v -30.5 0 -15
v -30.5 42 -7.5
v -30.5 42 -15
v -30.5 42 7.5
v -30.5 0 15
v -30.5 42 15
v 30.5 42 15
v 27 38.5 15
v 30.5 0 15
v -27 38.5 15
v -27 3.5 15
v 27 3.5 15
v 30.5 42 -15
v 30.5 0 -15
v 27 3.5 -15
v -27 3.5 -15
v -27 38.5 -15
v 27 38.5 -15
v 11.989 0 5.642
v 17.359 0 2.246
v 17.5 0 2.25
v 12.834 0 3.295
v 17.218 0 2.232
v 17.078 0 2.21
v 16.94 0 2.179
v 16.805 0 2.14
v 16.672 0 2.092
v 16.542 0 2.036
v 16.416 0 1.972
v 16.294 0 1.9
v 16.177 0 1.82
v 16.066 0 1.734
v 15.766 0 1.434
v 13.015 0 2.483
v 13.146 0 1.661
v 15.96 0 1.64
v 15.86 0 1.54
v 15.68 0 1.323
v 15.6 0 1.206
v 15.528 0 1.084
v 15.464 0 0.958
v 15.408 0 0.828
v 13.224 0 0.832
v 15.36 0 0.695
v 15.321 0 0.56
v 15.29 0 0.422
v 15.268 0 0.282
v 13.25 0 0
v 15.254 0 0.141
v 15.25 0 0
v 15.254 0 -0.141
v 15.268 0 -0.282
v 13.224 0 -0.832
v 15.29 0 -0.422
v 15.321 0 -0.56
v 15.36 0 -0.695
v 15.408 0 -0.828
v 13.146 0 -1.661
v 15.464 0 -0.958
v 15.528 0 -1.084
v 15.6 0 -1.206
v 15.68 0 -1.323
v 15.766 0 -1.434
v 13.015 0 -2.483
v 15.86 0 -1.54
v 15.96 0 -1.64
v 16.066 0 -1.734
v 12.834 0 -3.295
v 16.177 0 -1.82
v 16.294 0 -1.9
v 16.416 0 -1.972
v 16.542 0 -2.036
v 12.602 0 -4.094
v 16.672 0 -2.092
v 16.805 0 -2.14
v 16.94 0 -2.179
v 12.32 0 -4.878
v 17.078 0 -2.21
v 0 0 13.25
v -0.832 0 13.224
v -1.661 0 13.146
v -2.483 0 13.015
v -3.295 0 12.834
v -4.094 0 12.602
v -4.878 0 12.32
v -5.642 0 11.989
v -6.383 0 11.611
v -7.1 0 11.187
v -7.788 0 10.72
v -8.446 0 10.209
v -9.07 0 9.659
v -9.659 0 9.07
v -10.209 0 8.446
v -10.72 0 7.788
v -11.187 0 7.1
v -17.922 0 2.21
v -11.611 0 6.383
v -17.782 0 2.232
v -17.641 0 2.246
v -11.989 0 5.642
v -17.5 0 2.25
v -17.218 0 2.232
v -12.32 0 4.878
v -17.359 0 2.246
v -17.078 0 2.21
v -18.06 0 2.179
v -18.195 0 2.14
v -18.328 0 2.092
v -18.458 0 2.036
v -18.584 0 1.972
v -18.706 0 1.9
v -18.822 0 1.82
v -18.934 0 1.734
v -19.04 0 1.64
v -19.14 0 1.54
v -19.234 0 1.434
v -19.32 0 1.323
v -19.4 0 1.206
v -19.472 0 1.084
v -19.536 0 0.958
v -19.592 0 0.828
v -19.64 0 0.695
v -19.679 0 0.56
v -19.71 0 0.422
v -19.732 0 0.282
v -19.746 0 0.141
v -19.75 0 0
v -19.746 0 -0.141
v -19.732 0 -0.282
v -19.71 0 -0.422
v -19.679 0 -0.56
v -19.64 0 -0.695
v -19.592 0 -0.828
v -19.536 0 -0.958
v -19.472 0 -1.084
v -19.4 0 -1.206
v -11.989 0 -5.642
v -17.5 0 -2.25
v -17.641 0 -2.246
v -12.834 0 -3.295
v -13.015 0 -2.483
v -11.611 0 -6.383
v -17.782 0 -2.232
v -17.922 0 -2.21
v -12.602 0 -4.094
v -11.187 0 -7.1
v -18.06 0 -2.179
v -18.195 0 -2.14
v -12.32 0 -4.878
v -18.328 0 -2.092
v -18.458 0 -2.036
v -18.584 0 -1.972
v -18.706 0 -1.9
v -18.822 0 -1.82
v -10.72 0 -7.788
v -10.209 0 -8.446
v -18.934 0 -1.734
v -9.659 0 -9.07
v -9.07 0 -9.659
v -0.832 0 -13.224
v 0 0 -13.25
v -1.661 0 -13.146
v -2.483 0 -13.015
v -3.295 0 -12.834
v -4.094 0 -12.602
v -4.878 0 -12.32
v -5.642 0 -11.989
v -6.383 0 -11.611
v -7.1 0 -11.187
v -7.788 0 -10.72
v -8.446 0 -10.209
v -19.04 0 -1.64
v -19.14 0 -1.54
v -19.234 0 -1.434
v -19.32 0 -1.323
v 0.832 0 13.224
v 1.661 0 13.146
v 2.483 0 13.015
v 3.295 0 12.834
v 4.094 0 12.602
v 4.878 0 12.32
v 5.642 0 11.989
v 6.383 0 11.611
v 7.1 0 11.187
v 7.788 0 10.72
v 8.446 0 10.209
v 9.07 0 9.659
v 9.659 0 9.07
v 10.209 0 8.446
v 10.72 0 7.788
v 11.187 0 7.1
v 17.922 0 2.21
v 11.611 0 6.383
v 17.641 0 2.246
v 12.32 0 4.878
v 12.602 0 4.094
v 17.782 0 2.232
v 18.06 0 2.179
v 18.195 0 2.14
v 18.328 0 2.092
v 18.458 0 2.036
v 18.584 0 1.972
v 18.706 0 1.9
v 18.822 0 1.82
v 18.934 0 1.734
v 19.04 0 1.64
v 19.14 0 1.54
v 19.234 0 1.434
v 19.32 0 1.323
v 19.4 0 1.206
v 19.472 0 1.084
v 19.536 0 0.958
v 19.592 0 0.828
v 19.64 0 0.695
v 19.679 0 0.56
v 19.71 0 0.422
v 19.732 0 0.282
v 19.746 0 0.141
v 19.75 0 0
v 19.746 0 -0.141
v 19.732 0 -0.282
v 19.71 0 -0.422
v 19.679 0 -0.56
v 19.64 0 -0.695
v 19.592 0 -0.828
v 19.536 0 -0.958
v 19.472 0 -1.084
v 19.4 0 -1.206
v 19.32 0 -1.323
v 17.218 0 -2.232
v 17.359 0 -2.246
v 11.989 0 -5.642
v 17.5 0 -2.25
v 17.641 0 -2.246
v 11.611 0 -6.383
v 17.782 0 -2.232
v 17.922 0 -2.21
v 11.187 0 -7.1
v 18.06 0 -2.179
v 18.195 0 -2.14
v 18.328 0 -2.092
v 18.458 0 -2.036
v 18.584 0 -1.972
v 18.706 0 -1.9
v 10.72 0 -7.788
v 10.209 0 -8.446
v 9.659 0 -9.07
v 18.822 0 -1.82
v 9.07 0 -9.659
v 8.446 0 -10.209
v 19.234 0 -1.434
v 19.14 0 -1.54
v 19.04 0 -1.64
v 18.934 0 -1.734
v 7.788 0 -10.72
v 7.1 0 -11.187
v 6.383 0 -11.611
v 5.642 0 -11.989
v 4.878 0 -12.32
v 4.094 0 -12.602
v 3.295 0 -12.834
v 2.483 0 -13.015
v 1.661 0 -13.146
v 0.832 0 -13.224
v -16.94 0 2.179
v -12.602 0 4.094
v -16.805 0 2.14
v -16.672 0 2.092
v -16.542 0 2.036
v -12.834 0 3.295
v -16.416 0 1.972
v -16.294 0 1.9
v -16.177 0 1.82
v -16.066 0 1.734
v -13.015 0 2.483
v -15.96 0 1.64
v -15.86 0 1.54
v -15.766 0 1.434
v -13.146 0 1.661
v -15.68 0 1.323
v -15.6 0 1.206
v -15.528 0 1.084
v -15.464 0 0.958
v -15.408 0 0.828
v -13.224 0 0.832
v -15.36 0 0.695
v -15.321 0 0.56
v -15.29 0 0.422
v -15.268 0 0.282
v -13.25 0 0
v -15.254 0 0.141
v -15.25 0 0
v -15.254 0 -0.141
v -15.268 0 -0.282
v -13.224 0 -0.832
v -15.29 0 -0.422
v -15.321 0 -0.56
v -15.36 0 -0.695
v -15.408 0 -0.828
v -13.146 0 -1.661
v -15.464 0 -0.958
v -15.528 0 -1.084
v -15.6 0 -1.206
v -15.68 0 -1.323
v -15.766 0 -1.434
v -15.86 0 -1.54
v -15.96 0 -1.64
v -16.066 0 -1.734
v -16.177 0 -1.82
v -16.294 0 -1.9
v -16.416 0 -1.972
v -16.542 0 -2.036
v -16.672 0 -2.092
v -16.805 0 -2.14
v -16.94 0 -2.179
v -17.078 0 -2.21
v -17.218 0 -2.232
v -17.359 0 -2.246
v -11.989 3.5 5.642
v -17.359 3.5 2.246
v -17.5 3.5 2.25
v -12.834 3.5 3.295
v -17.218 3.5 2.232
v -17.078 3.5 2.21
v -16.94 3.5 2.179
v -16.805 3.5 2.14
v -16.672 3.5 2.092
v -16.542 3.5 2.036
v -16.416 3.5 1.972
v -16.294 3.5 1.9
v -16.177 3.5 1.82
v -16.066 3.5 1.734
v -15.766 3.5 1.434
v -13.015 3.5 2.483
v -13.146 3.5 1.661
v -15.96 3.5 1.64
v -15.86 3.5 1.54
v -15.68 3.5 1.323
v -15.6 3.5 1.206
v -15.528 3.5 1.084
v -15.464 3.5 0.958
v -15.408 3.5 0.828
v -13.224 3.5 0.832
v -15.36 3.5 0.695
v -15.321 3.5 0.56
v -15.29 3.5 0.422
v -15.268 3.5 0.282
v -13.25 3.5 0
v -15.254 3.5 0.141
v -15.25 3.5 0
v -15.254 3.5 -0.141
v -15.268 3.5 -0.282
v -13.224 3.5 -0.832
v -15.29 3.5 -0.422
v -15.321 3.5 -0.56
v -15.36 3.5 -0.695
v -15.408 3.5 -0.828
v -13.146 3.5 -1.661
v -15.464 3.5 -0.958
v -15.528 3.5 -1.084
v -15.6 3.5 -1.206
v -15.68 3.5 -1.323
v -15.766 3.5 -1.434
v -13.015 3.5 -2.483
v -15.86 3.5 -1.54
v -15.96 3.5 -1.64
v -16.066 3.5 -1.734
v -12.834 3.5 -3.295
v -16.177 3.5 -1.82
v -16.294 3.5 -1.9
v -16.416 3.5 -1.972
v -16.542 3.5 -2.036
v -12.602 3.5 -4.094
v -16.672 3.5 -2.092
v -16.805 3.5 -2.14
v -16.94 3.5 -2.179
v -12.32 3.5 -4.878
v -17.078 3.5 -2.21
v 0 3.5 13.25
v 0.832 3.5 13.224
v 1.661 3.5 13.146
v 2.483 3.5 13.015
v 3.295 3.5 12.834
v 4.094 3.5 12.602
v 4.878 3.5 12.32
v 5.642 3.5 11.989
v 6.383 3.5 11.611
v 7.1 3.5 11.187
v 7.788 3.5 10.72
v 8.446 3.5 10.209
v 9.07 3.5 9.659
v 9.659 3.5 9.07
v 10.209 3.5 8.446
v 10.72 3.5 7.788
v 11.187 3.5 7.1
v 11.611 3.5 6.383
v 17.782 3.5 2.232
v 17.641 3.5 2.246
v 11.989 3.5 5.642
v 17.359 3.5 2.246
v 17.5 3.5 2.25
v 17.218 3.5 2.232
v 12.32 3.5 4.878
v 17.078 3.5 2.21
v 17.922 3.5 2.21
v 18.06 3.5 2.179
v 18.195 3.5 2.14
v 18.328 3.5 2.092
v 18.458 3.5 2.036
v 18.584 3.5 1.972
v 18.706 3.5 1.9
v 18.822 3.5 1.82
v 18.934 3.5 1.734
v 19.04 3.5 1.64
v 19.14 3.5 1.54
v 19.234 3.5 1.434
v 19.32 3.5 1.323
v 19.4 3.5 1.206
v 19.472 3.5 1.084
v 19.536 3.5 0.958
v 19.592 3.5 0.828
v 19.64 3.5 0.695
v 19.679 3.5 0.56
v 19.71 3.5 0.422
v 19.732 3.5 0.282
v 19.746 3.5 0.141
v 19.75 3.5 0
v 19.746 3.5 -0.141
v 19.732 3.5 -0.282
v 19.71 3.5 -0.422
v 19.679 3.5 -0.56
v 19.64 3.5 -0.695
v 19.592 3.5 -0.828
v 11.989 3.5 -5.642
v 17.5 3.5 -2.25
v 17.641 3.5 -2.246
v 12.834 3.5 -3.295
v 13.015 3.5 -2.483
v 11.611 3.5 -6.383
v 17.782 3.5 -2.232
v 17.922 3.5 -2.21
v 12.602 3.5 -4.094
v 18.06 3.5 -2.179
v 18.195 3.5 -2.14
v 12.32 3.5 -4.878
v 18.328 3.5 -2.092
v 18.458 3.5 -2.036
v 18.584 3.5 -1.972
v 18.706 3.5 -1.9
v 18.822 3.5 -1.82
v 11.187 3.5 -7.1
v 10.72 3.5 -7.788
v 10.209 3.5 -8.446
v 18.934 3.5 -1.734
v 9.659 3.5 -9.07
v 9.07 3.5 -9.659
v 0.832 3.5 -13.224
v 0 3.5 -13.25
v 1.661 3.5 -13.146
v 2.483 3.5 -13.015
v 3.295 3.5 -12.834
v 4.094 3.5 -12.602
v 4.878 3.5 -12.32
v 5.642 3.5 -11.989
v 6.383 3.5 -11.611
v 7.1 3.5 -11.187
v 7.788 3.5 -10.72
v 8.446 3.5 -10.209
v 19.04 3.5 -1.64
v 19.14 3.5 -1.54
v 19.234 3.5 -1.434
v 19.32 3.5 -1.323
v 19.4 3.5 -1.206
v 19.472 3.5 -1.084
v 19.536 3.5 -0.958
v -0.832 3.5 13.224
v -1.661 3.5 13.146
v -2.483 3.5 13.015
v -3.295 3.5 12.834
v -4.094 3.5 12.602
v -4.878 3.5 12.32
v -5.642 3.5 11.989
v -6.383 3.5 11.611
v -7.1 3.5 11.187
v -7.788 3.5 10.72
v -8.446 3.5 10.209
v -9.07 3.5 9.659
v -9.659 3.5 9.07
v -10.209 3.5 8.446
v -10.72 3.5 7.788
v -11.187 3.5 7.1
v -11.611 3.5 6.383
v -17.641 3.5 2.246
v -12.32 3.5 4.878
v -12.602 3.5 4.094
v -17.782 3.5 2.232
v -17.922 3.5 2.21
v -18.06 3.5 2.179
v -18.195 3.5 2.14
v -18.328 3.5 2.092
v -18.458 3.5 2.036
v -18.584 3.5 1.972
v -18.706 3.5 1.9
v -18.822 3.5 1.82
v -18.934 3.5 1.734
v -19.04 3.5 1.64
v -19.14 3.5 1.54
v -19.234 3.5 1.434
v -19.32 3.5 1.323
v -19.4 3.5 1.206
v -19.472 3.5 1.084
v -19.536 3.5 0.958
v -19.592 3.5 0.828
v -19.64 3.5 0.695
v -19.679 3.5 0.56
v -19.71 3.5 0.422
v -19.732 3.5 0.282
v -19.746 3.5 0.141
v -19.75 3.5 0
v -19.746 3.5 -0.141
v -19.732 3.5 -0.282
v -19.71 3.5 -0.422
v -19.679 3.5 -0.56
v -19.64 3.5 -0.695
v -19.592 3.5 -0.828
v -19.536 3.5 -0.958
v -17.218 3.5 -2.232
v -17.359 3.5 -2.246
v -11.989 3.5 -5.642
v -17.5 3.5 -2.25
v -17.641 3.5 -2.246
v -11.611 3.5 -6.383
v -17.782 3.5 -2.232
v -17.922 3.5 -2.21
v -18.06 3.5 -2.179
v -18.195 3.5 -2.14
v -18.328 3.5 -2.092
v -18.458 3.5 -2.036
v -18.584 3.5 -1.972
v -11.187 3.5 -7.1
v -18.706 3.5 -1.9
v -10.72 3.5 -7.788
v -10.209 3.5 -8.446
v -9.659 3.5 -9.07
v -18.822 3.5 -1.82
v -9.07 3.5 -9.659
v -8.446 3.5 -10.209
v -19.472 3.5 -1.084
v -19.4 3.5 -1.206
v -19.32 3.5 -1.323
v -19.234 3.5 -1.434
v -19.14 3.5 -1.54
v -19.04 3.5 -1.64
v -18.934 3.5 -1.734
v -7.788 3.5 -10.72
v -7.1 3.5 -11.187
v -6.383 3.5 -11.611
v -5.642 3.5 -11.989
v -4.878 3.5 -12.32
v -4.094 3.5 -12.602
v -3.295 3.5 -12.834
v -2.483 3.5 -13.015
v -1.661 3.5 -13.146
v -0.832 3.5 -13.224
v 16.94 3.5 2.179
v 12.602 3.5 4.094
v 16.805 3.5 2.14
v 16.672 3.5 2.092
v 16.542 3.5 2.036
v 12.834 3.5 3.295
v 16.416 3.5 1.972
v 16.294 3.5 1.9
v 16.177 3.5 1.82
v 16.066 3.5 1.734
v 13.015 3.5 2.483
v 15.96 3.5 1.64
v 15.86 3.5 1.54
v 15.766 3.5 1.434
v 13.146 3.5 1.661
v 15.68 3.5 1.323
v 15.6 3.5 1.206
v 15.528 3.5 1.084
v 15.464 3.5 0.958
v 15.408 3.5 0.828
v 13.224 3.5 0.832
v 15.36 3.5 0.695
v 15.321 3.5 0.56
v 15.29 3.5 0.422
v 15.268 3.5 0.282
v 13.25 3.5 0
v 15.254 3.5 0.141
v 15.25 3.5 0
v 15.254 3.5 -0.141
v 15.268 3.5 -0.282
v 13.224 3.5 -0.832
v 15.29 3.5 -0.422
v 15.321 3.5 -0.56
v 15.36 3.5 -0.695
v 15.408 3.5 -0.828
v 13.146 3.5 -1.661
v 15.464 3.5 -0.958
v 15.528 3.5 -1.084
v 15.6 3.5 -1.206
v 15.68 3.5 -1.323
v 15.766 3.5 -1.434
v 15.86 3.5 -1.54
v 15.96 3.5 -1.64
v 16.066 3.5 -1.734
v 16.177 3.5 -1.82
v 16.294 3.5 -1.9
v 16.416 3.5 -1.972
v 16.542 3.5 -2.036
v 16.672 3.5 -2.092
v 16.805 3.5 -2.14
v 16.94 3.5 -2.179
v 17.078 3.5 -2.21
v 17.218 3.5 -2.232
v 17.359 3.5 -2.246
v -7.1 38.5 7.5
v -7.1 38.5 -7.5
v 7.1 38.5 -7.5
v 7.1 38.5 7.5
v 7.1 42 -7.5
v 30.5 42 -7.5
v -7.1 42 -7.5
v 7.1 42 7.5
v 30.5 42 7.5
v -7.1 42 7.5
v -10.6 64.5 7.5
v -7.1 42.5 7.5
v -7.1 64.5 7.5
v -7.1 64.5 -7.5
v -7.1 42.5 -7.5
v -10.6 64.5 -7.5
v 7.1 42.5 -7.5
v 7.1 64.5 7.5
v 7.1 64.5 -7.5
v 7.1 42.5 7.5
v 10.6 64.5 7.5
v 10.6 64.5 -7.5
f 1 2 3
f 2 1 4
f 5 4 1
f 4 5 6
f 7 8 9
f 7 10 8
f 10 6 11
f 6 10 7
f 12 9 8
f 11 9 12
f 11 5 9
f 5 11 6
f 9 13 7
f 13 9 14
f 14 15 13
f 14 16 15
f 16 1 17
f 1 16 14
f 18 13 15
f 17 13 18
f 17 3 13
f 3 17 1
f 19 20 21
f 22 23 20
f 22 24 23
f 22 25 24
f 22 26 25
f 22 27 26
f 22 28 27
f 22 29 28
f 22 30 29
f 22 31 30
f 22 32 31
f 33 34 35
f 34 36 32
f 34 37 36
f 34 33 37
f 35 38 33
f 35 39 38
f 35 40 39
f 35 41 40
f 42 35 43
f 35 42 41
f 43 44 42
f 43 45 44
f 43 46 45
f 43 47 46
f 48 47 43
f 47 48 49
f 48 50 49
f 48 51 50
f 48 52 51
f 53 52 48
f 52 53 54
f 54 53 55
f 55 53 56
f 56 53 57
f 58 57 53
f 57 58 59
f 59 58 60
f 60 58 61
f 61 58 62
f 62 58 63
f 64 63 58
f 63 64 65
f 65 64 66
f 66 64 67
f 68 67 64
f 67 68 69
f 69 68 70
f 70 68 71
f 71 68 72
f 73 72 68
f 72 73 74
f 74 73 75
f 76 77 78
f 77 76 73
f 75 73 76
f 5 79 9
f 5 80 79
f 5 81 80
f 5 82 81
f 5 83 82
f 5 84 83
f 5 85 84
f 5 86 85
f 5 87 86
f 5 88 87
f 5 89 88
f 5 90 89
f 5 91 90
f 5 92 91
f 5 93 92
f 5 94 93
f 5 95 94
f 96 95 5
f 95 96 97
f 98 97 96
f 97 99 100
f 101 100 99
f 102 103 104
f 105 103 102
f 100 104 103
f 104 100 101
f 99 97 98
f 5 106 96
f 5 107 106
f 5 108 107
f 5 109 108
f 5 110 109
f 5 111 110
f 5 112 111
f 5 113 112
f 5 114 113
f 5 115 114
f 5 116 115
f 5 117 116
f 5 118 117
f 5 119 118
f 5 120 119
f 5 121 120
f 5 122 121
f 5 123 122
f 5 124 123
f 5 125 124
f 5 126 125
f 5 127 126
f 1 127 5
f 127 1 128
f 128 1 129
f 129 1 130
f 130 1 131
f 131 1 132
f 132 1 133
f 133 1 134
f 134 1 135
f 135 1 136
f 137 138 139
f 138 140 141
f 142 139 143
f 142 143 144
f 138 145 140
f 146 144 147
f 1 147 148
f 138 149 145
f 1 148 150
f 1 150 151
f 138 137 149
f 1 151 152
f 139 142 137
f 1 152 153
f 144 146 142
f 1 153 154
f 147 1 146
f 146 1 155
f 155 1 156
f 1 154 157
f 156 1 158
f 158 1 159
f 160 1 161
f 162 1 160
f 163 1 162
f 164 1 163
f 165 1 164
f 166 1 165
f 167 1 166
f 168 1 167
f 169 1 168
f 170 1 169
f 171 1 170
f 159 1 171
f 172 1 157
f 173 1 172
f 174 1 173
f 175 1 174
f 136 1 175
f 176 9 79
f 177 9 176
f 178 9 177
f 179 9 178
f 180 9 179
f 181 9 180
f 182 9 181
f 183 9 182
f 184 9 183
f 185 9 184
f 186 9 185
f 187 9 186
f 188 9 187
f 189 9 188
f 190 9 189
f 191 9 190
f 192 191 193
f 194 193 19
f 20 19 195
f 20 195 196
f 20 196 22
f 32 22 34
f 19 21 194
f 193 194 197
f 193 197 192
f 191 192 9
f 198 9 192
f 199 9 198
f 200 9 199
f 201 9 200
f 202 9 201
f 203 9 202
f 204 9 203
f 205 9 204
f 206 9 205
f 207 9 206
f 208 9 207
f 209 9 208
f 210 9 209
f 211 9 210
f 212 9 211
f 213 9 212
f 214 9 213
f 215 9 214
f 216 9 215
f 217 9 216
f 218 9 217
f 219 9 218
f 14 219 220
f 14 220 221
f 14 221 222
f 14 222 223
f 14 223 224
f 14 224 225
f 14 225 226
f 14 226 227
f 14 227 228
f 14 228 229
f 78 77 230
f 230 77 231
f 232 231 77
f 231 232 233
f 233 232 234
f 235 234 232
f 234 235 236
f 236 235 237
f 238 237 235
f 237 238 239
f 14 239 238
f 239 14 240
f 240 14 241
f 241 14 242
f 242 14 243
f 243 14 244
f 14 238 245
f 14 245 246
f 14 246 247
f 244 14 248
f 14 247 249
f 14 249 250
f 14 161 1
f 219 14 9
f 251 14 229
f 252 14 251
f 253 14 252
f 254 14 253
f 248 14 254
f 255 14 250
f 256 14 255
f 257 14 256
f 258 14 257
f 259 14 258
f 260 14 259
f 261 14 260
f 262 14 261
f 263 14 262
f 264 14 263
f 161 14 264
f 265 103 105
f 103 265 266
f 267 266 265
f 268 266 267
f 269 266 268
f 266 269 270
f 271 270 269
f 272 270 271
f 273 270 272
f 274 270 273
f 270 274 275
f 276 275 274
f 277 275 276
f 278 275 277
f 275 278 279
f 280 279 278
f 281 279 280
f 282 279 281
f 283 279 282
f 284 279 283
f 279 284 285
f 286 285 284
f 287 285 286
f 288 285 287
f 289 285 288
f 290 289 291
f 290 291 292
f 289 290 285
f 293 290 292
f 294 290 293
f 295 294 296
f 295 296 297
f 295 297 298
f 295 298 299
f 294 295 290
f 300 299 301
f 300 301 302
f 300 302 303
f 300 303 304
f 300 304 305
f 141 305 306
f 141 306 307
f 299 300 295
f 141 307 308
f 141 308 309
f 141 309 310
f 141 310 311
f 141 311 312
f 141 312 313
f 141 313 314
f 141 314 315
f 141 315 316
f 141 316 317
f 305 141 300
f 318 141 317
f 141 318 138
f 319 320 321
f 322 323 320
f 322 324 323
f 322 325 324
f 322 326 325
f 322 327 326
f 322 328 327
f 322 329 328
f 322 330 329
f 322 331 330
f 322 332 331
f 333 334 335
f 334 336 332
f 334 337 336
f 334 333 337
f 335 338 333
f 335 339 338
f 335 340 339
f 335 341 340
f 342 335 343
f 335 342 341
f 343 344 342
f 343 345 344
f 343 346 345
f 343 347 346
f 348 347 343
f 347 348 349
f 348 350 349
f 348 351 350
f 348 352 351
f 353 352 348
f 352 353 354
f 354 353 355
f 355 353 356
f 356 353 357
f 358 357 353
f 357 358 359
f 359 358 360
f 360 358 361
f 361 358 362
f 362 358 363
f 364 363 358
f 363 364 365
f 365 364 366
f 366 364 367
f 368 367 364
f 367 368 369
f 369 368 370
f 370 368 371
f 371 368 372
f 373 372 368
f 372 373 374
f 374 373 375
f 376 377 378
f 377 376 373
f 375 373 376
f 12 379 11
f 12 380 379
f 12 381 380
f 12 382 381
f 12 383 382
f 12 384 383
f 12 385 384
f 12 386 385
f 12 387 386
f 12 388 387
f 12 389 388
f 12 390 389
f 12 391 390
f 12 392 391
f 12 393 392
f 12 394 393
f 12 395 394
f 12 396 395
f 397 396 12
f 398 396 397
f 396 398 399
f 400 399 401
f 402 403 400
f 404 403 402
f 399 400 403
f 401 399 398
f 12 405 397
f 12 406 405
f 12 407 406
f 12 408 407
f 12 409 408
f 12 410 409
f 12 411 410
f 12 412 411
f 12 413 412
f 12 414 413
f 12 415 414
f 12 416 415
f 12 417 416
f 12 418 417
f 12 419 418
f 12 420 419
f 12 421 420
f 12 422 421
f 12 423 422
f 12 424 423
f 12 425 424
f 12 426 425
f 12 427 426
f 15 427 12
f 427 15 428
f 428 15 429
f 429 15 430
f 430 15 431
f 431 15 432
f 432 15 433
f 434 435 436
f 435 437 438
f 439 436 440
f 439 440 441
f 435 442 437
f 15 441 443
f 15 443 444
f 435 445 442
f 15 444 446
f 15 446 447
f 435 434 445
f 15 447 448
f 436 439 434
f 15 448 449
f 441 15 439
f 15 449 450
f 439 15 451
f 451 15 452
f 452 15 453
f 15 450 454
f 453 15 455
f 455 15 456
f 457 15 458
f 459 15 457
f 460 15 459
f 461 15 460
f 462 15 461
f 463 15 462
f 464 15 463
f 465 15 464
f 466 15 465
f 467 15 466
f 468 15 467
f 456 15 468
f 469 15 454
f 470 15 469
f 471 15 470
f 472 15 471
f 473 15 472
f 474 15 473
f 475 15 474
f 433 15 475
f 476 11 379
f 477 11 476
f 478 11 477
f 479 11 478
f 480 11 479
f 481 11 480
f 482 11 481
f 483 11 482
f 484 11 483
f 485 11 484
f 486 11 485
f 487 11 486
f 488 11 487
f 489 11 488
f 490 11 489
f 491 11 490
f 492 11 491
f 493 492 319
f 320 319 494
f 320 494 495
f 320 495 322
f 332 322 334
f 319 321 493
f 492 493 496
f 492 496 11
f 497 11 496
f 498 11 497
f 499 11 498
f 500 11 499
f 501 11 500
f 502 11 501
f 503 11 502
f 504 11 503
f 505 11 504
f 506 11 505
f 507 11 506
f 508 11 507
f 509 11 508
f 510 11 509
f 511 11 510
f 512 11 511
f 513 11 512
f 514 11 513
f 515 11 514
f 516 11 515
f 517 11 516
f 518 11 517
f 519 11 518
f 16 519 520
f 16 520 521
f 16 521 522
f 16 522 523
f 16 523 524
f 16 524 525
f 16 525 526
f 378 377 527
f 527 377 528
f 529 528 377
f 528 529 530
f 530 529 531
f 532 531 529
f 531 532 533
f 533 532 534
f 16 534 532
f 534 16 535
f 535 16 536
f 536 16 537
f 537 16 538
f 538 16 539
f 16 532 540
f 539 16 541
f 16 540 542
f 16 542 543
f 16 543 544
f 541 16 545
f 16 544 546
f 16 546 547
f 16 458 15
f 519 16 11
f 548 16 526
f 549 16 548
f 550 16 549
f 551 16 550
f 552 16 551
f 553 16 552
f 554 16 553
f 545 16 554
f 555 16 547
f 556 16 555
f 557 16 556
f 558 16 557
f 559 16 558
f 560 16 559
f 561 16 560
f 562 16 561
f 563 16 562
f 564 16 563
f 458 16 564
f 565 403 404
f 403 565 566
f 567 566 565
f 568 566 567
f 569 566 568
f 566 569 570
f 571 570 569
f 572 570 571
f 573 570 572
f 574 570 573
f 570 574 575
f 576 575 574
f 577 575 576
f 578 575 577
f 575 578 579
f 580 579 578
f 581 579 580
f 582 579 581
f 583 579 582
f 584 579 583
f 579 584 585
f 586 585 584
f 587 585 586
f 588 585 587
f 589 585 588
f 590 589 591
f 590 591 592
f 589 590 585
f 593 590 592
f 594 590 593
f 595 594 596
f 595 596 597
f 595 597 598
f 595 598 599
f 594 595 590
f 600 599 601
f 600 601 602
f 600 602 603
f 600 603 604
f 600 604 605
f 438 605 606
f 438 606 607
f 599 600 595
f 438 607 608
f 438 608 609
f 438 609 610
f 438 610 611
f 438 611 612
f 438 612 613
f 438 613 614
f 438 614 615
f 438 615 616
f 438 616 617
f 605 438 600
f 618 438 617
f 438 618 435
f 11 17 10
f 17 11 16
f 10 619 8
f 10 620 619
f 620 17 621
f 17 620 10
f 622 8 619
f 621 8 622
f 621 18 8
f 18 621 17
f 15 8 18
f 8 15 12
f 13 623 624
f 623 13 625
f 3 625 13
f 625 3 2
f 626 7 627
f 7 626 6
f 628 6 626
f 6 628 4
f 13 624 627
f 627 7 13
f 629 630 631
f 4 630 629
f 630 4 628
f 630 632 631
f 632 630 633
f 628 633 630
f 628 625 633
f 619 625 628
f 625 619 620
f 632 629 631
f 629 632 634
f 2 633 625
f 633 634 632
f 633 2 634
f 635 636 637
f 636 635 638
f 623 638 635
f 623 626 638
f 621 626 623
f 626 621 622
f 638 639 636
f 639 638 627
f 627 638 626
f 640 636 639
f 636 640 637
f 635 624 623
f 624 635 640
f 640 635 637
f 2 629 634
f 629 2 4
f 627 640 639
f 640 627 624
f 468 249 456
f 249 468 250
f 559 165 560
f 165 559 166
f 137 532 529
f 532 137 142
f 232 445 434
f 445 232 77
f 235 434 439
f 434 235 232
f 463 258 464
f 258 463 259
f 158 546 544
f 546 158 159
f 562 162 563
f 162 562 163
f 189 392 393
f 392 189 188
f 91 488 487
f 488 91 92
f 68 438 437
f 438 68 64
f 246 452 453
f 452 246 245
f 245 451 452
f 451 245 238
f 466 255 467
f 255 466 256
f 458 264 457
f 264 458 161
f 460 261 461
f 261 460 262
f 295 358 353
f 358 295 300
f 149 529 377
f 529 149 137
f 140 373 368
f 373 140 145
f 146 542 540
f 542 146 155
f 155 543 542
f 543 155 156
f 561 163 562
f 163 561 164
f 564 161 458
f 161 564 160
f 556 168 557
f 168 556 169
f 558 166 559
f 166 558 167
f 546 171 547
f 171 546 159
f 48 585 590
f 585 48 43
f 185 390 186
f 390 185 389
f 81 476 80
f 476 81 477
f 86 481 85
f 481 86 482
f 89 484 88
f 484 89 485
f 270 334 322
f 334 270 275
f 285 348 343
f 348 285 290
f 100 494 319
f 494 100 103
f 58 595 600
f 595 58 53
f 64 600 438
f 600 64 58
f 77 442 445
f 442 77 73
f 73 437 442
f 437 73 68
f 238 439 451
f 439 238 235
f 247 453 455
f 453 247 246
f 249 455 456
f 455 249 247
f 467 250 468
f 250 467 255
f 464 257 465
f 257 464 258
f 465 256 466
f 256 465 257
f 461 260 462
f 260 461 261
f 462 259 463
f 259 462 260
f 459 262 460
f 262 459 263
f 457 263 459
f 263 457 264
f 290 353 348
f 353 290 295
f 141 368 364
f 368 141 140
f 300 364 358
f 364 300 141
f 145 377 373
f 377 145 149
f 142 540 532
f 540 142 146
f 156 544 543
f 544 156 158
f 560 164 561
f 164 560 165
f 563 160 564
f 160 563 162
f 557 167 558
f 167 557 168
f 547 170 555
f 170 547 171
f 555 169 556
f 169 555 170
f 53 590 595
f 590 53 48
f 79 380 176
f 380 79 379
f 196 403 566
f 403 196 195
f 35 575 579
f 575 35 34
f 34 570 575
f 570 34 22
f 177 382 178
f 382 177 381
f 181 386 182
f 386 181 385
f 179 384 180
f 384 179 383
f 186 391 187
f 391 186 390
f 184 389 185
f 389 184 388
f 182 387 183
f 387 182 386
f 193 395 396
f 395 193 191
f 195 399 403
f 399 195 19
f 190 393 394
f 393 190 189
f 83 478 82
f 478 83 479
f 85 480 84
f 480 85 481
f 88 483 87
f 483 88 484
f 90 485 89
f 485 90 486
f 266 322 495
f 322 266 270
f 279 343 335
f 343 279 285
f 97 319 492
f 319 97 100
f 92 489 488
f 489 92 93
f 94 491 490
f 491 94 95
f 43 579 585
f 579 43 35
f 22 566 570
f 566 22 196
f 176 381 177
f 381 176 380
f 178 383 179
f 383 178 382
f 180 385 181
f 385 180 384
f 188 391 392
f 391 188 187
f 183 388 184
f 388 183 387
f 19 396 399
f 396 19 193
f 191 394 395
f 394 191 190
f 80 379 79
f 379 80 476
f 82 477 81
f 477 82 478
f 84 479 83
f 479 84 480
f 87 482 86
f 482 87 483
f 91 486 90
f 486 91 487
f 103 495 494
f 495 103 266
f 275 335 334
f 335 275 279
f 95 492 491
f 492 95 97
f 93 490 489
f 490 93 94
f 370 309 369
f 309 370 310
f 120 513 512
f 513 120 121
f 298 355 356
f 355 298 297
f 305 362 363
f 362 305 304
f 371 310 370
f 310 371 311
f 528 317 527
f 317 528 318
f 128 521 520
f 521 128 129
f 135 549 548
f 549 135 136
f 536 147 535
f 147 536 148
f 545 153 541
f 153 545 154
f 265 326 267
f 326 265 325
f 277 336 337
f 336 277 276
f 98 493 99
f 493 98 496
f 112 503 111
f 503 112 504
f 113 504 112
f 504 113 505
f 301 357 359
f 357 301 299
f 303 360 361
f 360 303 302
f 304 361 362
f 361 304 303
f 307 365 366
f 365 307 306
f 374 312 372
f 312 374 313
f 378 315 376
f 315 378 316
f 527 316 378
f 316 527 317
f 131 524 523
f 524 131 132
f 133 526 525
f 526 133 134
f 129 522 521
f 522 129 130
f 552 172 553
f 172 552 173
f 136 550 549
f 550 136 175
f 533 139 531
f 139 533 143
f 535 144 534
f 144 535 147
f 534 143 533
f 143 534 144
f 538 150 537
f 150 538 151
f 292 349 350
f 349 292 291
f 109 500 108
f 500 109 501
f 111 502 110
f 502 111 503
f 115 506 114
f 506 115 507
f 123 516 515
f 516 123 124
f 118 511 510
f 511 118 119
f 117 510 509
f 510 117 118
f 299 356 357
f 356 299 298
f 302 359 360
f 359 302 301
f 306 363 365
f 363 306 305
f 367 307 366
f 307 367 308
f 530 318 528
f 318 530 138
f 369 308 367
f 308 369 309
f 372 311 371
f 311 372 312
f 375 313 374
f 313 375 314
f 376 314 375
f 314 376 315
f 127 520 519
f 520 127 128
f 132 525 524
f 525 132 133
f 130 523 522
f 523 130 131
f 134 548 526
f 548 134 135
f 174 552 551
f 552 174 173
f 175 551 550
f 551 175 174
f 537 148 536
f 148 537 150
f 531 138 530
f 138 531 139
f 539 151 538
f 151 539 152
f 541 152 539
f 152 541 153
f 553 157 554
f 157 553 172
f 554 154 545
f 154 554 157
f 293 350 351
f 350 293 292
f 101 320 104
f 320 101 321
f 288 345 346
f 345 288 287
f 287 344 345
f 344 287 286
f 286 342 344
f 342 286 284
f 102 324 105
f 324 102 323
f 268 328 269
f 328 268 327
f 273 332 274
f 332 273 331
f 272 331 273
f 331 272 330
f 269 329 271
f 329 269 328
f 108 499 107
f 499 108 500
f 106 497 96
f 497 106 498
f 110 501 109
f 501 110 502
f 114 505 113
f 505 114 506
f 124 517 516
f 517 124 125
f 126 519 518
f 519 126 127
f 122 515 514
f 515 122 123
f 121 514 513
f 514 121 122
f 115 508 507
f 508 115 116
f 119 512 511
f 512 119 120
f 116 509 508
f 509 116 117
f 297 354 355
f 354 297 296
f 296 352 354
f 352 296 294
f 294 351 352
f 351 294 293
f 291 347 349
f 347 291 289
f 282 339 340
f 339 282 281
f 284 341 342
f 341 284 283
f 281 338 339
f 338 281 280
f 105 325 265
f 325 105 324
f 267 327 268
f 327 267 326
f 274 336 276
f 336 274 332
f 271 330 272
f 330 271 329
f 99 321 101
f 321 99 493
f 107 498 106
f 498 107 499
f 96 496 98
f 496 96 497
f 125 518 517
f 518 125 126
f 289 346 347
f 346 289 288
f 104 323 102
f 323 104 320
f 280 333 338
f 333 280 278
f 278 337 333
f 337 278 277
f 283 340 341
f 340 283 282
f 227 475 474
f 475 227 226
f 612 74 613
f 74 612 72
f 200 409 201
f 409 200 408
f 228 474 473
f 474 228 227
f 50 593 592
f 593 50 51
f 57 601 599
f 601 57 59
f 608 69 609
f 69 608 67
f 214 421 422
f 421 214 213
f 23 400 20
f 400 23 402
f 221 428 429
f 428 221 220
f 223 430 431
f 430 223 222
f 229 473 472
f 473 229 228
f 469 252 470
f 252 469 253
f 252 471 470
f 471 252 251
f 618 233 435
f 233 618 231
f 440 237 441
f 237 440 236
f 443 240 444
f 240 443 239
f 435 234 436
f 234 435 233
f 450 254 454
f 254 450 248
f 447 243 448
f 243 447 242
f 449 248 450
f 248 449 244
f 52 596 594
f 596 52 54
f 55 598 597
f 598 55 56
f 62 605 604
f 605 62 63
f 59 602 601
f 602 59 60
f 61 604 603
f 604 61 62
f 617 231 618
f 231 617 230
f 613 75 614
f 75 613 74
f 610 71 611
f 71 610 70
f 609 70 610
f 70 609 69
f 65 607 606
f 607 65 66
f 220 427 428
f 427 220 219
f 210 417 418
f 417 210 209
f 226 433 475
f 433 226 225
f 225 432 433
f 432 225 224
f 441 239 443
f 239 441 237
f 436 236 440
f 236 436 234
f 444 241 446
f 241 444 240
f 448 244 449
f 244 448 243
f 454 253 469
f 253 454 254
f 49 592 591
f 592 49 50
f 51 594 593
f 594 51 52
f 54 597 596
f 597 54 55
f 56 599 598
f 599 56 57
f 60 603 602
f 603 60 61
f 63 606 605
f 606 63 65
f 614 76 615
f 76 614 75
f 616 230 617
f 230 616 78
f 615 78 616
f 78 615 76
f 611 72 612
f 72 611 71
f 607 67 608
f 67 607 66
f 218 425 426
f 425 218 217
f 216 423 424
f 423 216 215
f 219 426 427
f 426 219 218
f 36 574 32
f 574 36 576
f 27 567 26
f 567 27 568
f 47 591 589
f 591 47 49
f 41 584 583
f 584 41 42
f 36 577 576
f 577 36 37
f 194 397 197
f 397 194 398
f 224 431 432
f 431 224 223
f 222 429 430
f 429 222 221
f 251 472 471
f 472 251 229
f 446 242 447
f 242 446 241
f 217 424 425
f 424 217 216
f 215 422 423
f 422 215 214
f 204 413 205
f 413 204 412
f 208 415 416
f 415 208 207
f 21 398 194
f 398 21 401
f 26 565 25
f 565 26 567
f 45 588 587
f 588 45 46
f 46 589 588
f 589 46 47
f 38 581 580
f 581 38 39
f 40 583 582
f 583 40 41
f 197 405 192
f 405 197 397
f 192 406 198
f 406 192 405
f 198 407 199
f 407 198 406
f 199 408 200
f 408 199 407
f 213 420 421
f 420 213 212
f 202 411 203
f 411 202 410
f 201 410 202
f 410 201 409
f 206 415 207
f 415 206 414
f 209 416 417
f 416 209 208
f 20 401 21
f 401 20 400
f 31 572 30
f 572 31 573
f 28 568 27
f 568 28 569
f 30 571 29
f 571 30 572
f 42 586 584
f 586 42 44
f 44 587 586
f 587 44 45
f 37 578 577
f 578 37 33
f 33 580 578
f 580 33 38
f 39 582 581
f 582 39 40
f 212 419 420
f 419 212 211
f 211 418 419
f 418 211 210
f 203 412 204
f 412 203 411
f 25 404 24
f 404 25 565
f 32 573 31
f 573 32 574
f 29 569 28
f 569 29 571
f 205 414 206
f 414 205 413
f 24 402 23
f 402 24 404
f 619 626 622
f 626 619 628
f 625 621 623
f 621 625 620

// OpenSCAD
motorboltdia = 4.5;
numofmotorbolts = 2;
motorboltdistdia = 35;
shaftdia = 26.5;
//the part has to avoid this part while extending outwards (usually the coupler with the screw)
thickestshaftdia = 20;
//includes everything including the coupler
shaftlegnth = 35;
//this is the thickness of the part going from the motor to the rail
shaftsurrond = 5;
raillegnth = 22.5;
//this is the thickness of the part that guides and stops the rotation of the connected part
railwidth = 14+.2;

//this is the hieght of the rail (in the z direction)
railhieght = 15;

//for the metal version
//thickness of sheet metal
sheetthickness = 3.5;
//the width of the sheet
sheetwidth = 30;

metal = 1;

//we also have a heater that is composed of thin wire heater with double faced tape to aluminum foil and foam on top


 module prism(l, w, h){
       polyhedron(
               points=[[0,0,0], [l,0,0], [l,w,0], [0,w,0], [0,w,h], [l,w,h]],
               faces=[[0,1,2,3],[5,4,3,2],[0,4,5,1],[0,3,4],[5,2,1]]
               );
       }
       

    totalwidth = motorboltdistdia + motorboltdia *2 + shaftsurrond*2 + sheetthickness*2;
translate([-totalwidth/2, 0, -sheetwidth/2]){
    difference(){
        union(){
    //use seven cubes instead of importing dxf
    translate(){cube([totalwidth, sheetthickness,sheetwidth]);}
    translate([0,sheetthickness,0]){cube([sheetthickness, shaftlegnth, sheetwidth]);}
    translate([motorboltdistdia + motorboltdia *2 + shaftsurrond*2 + sheetthickness,sheetthickness,0]){cube([sheetthickness, shaftlegnth, sheetwidth]);}
    translate([0,shaftlegnth + sheetthickness,0]){cube([totalwidth,sheetthickness,sheetwidth]);}
    translate([(totalwidth - railwidth)/2-sheetthickness,shaftlegnth + sheetthickness,(sheetwidth - railhieght)/2]){cube([sheetthickness,raillegnth + sheetthickness,railhieght]);}
    translate([totalwidth - (totalwidth - railwidth)/2,shaftlegnth + sheetthickness,(sheetwidth - railhieght)/2]){cube([sheetthickness,raillegnth + sheetthickness,railhieght]);}
    translate([(totalwidth - railwidth)/2-sheetthickness,(shaftlegnth + sheetthickness) + raillegnth + sheetthickness,(sheetwidth - railhieght)/2+railhieght]){rotate(a = [180,90,0]){prism(railhieght,raillegnth,(totalwidth - railwidth)/2 - sheetthickness);}}
    translate([(totalwidth - ((totalwidth - railwidth)/2 - sheetthickness)),(shaftlegnth + sheetthickness) + raillegnth + sheetthickness,(sheetwidth - railhieght)/2]){rotate(a = [180,90+180,0]){prism(railhieght,raillegnth,(totalwidth - railwidth)/2 - sheetthickness);}}
}

union(){
    translate([totalwidth/2,-.1,sheetwidth/2]){rotate(a = [270,0,0]){
        translate([0,0,0]){cylinder(r = shaftdia/2, h = 10, $fn = 100);}
        translate([-motorboltdistdia/2, 0, 0]){cylinder(r = motorboltdia/2, h = 10, $fn = 100);}
        translate([motorboltdistdia/2, 0, 0]){cylinder(r = motorboltdia/2, h = 10, $fn = 100);}
    }}
        translate([totalwidth/2-railwidth/2,shaftlegnth + sheetthickness-.5,sheetwidth/2-railhieght/2]){cube([railwidth,sheetthickness + 1,railhieght]);}
}
}}
